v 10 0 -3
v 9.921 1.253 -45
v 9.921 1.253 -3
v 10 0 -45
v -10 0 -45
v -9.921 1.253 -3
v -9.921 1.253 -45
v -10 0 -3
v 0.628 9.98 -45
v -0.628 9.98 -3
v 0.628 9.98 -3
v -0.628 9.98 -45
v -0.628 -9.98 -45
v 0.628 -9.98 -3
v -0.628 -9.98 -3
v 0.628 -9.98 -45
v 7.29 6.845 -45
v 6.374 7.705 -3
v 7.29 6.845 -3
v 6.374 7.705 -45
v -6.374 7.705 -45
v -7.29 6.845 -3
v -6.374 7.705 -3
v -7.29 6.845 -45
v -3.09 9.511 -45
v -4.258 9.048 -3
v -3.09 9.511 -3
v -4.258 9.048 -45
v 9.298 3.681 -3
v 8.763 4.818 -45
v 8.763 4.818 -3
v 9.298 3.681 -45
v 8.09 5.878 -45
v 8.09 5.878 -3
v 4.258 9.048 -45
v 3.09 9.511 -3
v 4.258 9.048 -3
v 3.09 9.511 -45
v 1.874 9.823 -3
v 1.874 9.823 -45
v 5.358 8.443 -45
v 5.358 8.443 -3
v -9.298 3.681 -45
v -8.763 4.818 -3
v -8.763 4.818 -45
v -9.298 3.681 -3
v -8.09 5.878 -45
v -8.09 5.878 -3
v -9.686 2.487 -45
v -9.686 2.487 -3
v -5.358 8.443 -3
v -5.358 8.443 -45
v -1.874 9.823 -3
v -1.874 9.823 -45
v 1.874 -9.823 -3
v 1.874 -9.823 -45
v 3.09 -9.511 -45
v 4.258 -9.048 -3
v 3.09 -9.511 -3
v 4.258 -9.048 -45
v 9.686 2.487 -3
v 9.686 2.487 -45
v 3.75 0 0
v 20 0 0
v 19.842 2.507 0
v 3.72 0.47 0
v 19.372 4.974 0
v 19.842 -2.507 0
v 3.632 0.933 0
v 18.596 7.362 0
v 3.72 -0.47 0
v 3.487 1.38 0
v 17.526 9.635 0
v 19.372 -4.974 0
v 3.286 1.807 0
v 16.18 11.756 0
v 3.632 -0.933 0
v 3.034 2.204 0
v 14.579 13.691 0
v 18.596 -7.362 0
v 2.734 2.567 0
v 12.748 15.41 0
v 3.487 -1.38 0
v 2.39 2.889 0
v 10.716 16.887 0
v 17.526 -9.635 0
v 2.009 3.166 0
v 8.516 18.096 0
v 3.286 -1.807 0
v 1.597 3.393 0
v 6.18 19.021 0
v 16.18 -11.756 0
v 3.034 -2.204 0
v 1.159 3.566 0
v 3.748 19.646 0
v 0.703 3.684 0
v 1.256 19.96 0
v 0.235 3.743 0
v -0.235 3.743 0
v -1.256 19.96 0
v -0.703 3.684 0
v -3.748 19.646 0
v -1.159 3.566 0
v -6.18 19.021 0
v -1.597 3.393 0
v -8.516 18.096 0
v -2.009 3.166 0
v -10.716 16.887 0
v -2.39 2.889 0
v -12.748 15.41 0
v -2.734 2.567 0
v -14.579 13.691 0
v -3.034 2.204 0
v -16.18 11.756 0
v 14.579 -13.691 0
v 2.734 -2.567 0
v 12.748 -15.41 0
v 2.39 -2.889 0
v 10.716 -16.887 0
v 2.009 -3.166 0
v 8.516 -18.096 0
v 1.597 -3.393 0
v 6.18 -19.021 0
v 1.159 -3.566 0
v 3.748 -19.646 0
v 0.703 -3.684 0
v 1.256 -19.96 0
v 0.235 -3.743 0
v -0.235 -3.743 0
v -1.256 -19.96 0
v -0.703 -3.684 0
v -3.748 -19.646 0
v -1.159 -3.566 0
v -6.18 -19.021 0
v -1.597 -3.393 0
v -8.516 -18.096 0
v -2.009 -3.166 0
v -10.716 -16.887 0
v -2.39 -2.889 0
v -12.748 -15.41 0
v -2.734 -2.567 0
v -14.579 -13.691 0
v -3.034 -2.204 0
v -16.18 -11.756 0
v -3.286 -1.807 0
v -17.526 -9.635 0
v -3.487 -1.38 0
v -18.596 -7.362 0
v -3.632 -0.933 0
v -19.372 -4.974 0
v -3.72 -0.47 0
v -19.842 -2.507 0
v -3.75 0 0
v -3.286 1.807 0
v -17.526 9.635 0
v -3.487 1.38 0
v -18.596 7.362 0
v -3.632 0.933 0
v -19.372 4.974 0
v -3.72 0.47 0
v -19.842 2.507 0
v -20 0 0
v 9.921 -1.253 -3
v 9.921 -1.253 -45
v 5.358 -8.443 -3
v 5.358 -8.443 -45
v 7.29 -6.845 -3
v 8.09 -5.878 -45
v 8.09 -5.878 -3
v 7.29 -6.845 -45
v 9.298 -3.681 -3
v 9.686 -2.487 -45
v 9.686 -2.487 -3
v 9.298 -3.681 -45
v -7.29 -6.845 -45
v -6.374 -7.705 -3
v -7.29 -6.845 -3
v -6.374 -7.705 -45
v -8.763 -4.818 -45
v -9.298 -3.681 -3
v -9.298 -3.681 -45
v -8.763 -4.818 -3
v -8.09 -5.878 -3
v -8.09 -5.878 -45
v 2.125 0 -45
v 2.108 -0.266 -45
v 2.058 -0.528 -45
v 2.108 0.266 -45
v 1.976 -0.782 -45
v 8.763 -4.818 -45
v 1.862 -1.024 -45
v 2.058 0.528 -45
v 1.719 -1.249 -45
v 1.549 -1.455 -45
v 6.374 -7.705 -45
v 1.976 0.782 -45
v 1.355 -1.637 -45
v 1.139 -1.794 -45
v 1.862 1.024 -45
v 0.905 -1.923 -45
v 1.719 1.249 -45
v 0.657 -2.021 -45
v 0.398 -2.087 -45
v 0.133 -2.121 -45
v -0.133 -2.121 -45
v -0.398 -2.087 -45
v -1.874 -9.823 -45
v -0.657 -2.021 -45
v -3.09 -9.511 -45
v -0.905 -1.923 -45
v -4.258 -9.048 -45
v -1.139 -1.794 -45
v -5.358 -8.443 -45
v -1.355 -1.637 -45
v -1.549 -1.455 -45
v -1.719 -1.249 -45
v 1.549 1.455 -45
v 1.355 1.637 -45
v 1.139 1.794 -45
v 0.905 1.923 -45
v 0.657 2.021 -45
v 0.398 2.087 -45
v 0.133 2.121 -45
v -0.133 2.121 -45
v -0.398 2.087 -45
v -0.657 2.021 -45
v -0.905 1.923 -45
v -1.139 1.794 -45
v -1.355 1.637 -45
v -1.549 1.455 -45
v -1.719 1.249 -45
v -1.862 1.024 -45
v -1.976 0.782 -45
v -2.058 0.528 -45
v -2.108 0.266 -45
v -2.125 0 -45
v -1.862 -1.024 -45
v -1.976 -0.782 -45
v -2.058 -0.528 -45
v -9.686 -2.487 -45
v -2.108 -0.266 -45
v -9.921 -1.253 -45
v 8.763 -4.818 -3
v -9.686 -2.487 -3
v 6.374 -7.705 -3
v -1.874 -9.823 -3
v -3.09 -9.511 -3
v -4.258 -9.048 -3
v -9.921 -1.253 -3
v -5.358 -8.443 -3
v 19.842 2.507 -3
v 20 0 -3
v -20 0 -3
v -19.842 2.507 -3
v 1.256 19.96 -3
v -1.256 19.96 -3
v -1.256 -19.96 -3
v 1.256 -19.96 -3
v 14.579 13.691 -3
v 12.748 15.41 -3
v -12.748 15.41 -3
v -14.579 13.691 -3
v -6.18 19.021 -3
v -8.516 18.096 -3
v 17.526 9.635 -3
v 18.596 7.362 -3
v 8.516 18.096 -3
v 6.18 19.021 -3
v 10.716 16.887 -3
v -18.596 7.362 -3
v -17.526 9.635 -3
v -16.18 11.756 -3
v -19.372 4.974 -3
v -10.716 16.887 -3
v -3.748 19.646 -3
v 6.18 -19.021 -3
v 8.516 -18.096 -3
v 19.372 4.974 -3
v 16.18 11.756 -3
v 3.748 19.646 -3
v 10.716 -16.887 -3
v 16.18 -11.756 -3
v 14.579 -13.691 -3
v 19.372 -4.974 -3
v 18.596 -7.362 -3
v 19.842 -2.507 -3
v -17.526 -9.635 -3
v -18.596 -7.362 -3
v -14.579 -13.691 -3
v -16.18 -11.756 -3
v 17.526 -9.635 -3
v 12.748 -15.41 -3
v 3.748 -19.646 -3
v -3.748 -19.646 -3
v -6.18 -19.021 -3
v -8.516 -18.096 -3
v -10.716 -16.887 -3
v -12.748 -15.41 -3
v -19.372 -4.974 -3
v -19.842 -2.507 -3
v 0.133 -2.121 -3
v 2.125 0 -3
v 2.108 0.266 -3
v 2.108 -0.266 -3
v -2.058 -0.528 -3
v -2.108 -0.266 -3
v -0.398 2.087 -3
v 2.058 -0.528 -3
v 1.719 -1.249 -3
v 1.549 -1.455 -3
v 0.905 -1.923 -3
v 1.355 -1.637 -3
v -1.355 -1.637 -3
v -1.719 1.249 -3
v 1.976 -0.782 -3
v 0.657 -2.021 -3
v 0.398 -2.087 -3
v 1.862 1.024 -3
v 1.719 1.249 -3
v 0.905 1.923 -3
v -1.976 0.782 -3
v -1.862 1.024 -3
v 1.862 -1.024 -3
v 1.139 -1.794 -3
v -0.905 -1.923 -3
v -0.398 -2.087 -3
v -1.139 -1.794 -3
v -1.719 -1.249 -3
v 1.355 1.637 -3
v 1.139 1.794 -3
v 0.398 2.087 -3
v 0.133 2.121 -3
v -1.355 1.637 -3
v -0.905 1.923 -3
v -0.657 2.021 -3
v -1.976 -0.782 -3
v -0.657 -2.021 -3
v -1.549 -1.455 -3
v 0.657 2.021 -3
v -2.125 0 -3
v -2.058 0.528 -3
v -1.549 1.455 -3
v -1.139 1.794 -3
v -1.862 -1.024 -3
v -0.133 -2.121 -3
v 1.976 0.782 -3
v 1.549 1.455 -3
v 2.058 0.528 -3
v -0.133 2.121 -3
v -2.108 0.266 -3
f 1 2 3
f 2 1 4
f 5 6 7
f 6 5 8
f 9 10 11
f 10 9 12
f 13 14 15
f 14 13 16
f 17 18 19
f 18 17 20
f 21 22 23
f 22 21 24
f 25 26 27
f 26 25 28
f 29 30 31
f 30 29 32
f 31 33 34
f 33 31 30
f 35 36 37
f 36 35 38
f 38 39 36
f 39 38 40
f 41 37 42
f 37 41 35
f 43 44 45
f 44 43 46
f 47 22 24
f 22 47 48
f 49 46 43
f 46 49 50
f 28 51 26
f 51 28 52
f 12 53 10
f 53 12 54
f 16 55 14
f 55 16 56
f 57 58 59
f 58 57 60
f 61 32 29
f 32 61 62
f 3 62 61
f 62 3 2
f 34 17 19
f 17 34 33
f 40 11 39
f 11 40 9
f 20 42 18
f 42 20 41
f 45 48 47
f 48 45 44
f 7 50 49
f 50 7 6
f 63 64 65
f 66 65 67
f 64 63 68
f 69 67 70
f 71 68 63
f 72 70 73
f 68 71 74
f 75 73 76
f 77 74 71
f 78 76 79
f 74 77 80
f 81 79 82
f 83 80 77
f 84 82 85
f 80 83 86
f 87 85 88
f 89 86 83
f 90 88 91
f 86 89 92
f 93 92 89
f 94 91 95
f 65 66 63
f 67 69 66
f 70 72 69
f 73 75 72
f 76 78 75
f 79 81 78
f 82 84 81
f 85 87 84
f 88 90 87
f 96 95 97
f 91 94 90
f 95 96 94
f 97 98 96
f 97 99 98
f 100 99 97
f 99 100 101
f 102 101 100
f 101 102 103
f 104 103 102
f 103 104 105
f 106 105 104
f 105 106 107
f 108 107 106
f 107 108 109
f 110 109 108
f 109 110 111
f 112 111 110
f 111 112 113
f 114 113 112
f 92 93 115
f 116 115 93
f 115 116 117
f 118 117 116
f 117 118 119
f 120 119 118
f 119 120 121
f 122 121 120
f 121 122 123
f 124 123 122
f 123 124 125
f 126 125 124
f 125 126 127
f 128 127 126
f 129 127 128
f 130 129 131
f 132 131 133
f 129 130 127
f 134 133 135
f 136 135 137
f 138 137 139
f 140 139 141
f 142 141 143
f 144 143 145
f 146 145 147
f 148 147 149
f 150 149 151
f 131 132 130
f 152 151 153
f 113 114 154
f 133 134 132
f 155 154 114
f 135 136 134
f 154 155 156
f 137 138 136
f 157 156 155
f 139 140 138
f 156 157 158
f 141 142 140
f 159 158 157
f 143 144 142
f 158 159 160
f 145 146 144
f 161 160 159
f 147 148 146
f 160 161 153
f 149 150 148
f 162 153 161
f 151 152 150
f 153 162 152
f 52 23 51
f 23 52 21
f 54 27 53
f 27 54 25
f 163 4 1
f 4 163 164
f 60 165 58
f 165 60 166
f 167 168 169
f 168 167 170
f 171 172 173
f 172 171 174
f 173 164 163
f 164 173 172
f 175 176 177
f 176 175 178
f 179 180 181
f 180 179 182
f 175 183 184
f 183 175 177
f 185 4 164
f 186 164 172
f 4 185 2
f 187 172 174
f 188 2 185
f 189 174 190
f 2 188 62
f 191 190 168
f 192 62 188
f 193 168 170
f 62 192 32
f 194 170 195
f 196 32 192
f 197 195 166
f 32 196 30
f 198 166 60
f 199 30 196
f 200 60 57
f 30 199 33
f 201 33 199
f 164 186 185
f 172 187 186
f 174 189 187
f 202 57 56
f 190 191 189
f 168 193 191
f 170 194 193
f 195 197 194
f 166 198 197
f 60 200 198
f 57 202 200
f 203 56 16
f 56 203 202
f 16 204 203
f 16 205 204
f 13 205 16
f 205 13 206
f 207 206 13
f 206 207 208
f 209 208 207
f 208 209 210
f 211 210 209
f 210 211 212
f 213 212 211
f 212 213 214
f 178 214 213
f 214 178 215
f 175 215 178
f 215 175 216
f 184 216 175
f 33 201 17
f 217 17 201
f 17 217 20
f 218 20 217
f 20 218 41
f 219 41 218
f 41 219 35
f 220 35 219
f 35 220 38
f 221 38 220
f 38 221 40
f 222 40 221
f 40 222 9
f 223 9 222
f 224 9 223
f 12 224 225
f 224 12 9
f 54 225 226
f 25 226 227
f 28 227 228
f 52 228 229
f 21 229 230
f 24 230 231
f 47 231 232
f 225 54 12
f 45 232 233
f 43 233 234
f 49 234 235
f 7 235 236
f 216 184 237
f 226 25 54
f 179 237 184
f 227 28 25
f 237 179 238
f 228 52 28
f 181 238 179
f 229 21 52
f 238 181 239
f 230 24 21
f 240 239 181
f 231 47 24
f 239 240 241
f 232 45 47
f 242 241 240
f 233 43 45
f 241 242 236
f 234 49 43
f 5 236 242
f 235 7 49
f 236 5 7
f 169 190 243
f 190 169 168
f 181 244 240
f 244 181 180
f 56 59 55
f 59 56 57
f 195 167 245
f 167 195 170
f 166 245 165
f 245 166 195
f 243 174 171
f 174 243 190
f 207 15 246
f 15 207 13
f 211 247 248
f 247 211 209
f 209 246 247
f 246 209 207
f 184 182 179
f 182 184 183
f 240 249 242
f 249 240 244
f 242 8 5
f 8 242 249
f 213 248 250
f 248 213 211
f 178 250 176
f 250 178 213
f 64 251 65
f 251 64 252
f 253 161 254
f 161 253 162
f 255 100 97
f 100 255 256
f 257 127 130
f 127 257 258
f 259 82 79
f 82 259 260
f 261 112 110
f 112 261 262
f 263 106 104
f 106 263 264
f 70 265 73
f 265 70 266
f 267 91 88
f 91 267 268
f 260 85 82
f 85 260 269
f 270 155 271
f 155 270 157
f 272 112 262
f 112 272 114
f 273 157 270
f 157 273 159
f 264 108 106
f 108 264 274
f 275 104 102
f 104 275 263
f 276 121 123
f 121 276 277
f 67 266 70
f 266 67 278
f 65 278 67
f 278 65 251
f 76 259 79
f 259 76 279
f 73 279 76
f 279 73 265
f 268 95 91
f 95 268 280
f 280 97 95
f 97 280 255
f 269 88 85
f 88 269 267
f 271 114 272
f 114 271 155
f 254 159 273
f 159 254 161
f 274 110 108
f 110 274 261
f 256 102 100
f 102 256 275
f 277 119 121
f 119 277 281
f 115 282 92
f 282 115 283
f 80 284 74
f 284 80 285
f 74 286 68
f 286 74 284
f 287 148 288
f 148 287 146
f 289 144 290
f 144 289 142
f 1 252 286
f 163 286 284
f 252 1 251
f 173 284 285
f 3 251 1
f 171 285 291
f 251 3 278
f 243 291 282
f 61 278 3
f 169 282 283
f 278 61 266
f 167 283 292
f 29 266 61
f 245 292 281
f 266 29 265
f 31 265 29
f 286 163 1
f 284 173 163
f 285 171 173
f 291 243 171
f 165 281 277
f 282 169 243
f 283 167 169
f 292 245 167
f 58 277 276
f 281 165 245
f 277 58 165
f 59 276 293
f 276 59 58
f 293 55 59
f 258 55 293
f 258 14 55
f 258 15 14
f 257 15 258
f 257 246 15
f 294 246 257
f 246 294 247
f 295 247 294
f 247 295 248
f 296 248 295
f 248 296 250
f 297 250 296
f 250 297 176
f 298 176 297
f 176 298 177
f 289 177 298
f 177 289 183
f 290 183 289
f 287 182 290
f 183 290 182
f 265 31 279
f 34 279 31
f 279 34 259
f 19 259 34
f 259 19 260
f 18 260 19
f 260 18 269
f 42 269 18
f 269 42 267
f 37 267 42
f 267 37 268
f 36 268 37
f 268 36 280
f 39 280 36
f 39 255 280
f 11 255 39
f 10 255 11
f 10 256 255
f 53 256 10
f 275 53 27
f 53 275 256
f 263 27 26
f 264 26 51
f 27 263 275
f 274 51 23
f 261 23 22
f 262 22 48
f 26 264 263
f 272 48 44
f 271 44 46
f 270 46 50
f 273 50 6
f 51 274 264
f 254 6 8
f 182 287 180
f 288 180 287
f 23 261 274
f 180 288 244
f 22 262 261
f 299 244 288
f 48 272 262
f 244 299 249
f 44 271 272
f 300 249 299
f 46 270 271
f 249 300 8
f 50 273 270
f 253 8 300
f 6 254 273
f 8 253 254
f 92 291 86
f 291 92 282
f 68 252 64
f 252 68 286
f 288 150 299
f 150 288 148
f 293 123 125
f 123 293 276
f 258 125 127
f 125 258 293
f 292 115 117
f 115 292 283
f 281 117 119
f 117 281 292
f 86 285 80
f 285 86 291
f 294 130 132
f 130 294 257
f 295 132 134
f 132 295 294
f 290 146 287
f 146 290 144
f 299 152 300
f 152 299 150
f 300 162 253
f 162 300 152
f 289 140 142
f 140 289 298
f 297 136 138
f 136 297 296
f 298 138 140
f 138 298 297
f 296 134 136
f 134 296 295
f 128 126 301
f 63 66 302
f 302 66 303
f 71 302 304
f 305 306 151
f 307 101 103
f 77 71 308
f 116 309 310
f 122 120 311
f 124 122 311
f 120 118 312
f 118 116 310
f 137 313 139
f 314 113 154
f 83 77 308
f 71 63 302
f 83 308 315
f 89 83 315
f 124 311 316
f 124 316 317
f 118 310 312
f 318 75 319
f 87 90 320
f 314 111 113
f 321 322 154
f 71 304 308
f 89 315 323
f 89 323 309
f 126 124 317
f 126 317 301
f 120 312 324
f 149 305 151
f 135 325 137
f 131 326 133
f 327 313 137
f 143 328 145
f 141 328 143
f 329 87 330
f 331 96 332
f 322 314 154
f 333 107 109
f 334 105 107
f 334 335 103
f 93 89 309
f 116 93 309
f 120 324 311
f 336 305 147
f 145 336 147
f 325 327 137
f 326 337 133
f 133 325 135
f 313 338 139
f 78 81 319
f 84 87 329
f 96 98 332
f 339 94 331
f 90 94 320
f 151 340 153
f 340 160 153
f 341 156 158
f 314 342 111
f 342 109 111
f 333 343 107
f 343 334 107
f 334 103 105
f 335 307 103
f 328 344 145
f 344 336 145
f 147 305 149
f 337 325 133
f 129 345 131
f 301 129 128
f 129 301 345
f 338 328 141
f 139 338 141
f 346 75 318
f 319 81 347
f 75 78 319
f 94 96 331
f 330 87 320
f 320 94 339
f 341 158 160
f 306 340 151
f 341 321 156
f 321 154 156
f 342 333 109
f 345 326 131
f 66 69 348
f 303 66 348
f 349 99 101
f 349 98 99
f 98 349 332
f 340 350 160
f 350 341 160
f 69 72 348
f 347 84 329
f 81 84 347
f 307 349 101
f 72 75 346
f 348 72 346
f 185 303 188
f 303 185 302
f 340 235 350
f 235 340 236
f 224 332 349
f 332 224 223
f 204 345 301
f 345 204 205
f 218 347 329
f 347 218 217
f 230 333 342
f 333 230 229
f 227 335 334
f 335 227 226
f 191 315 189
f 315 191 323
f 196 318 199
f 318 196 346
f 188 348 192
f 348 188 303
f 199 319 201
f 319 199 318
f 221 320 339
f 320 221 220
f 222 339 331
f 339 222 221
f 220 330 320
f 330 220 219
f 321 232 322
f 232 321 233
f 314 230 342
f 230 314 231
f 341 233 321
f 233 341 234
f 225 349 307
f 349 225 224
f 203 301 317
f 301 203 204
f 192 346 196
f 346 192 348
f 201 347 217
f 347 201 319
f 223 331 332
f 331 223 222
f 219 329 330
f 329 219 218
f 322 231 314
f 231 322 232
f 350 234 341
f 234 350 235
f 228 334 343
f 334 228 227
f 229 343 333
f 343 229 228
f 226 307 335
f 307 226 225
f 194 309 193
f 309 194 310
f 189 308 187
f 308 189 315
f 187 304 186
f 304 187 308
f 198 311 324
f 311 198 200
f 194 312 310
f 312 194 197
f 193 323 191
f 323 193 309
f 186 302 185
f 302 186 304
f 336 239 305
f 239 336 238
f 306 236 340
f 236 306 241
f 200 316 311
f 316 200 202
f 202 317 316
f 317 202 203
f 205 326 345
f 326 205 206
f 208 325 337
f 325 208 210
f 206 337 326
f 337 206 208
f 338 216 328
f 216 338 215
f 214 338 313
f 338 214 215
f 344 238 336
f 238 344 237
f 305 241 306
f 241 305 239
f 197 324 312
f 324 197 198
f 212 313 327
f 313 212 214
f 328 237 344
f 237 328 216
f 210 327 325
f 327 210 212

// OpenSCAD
$fn = 50;


difference() {
	union() {
		translate(v = [0, 0, -45.0000000000]) {
			cylinder(h = 45, r = 10.0000000000);
		}
		translate(v = [0, 0, -3.0000000000]) {
			cylinder(h = 3, r = 20.0000000000);
		}
	}
	union() {
		translate(v = [0, 0, 0]) {
			rotate(a = [0, 0, 0]) {
				difference() {
					union() {
						#translate(v = [0, 0, -45.0000000000]) {
							cylinder(h = 45, r = 2.0000000000);
						}
						#translate(v = [0, 0, -3]) {
							cylinder(h = 3, r1 = 2.1250000000, r2 = 3.7500000000);
						}
						#translate(v = [0, 0, -45.0000000000]) {
							cylinder(h = 45, r = 2.1250000000);
						}
						#translate(v = [0, 0, -45.0000000000]) {
							cylinder(h = 45, r = 2.0000000000);
						}
					}
					union();
				}
			}
		}
	}
}
